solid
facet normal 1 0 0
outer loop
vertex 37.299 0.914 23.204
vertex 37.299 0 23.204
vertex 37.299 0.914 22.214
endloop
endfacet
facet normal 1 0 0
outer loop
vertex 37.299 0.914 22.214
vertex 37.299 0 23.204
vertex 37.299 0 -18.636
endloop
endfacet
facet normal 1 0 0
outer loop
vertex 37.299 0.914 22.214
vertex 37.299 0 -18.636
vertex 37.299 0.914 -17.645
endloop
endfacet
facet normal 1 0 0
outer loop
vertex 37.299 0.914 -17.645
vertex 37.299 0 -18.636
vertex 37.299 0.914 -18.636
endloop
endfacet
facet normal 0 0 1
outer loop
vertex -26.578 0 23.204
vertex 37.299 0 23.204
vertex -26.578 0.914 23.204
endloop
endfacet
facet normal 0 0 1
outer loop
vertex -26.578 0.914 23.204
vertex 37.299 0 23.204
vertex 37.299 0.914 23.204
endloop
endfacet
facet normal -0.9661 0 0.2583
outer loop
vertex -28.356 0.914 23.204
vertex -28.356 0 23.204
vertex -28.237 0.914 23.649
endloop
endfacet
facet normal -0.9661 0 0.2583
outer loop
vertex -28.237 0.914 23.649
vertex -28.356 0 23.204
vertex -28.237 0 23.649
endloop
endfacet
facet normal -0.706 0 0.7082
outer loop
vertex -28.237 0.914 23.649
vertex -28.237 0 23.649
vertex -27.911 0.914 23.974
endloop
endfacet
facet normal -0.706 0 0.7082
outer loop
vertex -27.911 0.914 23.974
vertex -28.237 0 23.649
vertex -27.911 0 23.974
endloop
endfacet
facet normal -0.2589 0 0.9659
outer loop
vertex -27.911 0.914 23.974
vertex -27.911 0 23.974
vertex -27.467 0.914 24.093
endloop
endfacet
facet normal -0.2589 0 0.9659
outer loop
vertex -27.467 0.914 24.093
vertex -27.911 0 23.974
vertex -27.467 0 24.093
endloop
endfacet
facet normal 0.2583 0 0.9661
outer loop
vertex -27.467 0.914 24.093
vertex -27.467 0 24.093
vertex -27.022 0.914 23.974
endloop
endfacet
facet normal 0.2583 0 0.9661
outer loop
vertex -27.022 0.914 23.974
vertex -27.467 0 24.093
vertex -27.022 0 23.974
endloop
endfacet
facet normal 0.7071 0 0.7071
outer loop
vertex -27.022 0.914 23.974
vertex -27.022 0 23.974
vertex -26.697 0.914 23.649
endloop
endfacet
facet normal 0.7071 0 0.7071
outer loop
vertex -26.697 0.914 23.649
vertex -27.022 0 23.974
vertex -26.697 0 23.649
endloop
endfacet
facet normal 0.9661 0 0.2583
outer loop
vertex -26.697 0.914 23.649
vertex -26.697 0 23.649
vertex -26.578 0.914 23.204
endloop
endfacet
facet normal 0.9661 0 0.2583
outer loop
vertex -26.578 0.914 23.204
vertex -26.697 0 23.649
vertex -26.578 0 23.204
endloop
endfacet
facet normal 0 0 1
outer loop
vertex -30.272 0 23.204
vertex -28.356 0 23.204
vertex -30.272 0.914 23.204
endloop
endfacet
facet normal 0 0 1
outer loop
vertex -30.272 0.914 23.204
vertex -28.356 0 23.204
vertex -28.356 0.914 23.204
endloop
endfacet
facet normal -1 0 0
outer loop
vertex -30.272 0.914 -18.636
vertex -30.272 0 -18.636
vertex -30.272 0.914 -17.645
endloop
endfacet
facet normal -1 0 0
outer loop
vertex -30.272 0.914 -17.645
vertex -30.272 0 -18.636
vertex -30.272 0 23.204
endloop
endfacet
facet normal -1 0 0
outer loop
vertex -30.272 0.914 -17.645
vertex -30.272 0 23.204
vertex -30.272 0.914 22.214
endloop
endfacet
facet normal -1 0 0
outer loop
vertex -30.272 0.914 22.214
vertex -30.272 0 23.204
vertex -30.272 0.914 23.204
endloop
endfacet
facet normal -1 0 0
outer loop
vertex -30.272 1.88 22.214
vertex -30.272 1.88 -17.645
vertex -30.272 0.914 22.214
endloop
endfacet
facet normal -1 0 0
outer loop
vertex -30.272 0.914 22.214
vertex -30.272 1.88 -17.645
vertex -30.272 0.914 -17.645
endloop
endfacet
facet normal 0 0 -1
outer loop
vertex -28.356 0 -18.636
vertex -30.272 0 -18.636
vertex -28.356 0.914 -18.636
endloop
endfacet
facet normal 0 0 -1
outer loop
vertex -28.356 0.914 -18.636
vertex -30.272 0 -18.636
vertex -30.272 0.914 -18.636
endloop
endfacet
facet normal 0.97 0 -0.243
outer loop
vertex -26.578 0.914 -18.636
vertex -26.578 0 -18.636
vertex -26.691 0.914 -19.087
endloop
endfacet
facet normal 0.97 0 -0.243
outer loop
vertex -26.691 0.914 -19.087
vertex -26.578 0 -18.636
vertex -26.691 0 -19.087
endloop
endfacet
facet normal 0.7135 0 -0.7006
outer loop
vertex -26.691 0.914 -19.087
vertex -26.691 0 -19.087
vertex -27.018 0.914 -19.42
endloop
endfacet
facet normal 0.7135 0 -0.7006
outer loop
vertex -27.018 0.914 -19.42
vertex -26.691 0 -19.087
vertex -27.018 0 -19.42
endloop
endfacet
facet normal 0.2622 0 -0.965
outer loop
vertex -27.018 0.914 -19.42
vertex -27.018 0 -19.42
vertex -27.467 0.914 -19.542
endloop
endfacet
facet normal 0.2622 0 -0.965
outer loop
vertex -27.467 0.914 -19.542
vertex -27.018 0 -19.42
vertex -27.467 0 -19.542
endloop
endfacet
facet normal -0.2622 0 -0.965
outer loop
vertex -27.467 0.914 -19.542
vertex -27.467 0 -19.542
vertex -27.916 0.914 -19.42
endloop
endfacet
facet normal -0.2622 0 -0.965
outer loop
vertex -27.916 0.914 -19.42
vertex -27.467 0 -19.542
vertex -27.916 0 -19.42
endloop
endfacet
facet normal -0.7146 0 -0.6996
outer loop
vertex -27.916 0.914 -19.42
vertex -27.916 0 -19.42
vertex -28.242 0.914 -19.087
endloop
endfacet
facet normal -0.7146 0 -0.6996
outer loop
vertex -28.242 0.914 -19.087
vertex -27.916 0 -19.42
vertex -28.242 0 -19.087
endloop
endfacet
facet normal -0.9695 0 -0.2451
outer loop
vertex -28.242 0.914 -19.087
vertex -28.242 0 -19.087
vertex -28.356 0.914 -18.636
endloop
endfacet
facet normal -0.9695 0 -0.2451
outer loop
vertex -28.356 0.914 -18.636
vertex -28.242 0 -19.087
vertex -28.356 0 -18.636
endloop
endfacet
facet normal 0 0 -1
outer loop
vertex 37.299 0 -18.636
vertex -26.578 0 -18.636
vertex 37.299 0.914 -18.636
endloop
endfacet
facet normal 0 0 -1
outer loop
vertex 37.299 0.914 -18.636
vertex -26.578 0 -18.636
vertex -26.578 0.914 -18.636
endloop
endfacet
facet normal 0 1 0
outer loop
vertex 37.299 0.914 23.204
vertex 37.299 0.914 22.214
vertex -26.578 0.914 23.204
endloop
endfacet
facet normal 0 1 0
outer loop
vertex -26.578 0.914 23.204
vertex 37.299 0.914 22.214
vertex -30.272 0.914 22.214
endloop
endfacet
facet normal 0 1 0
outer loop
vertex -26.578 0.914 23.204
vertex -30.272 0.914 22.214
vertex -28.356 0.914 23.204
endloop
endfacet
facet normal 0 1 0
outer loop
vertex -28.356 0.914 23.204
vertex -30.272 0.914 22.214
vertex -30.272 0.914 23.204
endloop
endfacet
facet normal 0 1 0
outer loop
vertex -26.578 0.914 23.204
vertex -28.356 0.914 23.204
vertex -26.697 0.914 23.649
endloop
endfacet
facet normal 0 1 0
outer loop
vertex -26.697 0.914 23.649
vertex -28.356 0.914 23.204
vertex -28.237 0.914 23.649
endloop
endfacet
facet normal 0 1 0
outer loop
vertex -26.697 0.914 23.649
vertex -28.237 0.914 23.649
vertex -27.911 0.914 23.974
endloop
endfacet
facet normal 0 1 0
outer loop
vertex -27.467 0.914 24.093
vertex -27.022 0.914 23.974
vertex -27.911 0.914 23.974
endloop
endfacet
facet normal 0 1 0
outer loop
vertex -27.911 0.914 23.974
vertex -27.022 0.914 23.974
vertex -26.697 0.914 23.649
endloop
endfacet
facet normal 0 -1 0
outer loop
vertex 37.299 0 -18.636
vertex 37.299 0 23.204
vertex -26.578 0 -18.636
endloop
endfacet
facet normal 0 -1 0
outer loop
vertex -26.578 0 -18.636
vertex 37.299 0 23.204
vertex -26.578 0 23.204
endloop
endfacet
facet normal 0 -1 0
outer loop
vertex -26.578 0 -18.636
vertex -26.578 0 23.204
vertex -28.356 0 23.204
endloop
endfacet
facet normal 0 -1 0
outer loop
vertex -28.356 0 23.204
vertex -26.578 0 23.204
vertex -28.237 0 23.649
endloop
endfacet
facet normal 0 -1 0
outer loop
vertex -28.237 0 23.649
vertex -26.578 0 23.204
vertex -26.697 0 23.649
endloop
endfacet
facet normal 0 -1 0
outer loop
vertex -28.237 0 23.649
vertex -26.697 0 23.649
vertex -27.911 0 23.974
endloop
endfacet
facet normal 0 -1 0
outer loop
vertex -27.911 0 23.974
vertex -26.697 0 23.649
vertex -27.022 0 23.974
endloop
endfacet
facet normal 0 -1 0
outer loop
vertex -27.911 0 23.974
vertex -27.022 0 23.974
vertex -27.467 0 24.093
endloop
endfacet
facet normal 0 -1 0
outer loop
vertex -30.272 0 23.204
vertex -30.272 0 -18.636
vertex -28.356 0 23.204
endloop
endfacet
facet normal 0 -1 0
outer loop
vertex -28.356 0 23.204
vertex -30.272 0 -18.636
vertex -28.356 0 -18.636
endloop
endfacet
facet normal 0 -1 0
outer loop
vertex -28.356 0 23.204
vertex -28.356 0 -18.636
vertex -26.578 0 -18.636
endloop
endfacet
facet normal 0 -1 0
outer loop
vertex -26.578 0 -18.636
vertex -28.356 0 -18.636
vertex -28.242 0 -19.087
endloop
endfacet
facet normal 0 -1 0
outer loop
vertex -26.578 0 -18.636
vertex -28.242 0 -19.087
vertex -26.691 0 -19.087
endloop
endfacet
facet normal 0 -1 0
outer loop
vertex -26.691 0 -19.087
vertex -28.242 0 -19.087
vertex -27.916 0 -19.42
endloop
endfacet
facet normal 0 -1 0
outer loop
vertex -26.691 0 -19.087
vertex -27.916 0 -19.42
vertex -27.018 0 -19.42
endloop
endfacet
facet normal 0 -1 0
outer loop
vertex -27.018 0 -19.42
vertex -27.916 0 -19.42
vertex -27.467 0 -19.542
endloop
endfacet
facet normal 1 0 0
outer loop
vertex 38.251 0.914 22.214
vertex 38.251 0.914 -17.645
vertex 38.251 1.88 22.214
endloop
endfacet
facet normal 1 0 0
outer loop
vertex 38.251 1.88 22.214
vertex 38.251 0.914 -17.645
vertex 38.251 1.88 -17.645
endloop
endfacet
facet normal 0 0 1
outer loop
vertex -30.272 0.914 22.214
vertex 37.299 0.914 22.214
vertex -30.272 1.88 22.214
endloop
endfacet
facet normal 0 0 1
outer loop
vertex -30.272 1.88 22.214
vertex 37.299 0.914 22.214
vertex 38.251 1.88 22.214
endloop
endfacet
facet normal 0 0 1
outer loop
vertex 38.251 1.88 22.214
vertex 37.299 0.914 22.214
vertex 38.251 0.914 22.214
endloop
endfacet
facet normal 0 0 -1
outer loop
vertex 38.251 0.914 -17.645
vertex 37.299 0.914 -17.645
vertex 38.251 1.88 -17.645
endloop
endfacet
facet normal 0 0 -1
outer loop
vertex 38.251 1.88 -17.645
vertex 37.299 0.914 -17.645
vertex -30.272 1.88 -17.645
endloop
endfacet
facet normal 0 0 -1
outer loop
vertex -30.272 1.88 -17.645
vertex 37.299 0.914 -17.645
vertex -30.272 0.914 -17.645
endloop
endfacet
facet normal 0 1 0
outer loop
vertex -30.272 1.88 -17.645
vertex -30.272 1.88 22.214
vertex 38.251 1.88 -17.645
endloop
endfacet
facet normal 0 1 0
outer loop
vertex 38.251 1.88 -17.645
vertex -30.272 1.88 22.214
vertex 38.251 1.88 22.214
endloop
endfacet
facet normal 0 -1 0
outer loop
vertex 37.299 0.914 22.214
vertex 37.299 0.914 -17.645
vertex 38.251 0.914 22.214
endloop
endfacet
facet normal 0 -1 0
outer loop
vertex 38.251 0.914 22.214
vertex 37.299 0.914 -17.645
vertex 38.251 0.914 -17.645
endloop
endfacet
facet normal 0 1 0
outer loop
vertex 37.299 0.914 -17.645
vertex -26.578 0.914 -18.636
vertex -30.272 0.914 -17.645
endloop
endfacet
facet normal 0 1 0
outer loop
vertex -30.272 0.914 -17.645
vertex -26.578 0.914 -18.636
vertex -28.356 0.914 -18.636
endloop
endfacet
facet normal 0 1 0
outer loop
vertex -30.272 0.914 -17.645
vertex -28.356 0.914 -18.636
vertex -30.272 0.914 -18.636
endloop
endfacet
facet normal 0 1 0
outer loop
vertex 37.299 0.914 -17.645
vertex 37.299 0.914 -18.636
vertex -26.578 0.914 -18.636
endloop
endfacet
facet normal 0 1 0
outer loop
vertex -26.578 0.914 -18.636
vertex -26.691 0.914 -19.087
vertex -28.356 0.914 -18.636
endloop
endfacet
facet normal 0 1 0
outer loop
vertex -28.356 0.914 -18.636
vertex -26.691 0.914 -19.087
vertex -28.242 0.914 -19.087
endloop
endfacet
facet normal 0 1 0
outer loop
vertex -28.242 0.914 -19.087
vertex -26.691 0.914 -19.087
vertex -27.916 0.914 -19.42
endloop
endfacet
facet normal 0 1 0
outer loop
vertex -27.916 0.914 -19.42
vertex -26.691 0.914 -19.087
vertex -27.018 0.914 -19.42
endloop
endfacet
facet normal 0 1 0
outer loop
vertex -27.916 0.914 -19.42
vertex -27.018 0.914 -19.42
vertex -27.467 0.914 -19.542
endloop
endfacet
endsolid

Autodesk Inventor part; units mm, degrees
ref_plane "YZ Plane" through (0, 0, 0) normal (1, 0, 0) x (0, 1, 0)
ref_plane "XZ Plane" through (0, 0, 0) normal (0, 1, 0) x (-1, 0, 0)
ref_plane "XY Plane" through (0, 0, 0) normal (0, 0, 1) x (1, 0, 0)
sketch "Sketch1" plane through (0, 0, 0) normal (0, 1, 0) x (-1, 0, 0)
  line L0 (-36.727, -18.0642) -> (-36.727, 22.633)
  line L1 (-36.727, 22.633) -> (28.3668, 22.633)
  line L2 (28.3668, -18.0642) -> (-36.727, -18.0642)
  line L3 (30.2718, 23.5855) -> (28.3559, 23.5855)
  arc A0 (28.3559, 23.5855) -> (26.5779, 23.5855) centre (27.4669, 23.5855) ccw
  line L4 (26.5779, 23.5855) -> (-37.6795, 23.5855)
  line L5 (-37.6795, 23.5855) -> (-37.6795, -19.0167)
  line L6 (-37.6795, -19.0167) -> (26.5779, -19.0167)
  arc A1 (26.5779, -19.0167) -> (28.3559, -19.0167) centre (27.4669, -19.0167) ccw
  line L7 (28.3559, -19.0167) -> (30.2718, -19.0167)
  line L8 (30.2718, -18.6357) -> (27.8029, -18.6357)
  line L9 (27.1309, -18.6357) -> (-37.2985, -18.6357)
  line L10 (-37.2985, -18.6357) -> (-37.2985, 23.2045)
  line L11 (-37.2985, 23.2045) -> (27.1309, 23.2045)
  line L12 (27.8029, 23.2045) -> (30.2718, 23.2045)
  arc A2 (26.5779, -18.6357) -> (28.3559, -18.6357) centre (27.4669, -18.6524) ccw
  arc A3 (28.3559, 23.2045) -> (26.5779, 23.2045) centre (27.4669, 23.2045) ccw
  line L13 (30.2718, -18.6357) -> (30.2718, 23.2045)
  point P0 (0, 0)
  point P1 (25.8871, -17.6673)
  dimension "d0" = 0.381
  dimension "d1" = 0.889
extrude "Extrusion1" add sketch "Sketch1" along normal blind 0.9144
sketch "Sketch2" plane through (0, 0.9144, 0) normal (0, 1, 0) x (1, 0, 0)
  line L0 (37.2985, 18.6357) -> (-26.5779, 18.6357) projected
  line L1 (-26.5779, -23.2045) -> (37.2985, -23.2045) projected
  line L2 (37.2985, 17.6451) -> (-26.5779, 17.6451)
  line L3 (-26.5779, -22.2139) -> (37.2985, -22.2139)
  line L4 (-26.5779, 17.6451) -> (-30.2718, 17.6451)
  line L5 (-30.2718, 18.6357) -> (-30.2718, -23.2045) projected
  line L6 (-26.5779, -22.2139) -> (-30.2718, -22.2139)
  line L7 (37.2985, 17.6451) -> (38.251, 17.6451)
  line L8 (38.251, 17.6451) -> (38.251, -22.2139)
  line L9 (38.251, -22.2139) -> (37.2985, -22.2139)
  point P0 (0, 0)
  dimension "d4" = 0.9906
  dimension "d5" = 0.9906
  dimension "d6" = 0.9525
extrude "Extrusion2" add sketch "Sketch2" along normal blind 0.9652
properties part number "ControllerLid"
